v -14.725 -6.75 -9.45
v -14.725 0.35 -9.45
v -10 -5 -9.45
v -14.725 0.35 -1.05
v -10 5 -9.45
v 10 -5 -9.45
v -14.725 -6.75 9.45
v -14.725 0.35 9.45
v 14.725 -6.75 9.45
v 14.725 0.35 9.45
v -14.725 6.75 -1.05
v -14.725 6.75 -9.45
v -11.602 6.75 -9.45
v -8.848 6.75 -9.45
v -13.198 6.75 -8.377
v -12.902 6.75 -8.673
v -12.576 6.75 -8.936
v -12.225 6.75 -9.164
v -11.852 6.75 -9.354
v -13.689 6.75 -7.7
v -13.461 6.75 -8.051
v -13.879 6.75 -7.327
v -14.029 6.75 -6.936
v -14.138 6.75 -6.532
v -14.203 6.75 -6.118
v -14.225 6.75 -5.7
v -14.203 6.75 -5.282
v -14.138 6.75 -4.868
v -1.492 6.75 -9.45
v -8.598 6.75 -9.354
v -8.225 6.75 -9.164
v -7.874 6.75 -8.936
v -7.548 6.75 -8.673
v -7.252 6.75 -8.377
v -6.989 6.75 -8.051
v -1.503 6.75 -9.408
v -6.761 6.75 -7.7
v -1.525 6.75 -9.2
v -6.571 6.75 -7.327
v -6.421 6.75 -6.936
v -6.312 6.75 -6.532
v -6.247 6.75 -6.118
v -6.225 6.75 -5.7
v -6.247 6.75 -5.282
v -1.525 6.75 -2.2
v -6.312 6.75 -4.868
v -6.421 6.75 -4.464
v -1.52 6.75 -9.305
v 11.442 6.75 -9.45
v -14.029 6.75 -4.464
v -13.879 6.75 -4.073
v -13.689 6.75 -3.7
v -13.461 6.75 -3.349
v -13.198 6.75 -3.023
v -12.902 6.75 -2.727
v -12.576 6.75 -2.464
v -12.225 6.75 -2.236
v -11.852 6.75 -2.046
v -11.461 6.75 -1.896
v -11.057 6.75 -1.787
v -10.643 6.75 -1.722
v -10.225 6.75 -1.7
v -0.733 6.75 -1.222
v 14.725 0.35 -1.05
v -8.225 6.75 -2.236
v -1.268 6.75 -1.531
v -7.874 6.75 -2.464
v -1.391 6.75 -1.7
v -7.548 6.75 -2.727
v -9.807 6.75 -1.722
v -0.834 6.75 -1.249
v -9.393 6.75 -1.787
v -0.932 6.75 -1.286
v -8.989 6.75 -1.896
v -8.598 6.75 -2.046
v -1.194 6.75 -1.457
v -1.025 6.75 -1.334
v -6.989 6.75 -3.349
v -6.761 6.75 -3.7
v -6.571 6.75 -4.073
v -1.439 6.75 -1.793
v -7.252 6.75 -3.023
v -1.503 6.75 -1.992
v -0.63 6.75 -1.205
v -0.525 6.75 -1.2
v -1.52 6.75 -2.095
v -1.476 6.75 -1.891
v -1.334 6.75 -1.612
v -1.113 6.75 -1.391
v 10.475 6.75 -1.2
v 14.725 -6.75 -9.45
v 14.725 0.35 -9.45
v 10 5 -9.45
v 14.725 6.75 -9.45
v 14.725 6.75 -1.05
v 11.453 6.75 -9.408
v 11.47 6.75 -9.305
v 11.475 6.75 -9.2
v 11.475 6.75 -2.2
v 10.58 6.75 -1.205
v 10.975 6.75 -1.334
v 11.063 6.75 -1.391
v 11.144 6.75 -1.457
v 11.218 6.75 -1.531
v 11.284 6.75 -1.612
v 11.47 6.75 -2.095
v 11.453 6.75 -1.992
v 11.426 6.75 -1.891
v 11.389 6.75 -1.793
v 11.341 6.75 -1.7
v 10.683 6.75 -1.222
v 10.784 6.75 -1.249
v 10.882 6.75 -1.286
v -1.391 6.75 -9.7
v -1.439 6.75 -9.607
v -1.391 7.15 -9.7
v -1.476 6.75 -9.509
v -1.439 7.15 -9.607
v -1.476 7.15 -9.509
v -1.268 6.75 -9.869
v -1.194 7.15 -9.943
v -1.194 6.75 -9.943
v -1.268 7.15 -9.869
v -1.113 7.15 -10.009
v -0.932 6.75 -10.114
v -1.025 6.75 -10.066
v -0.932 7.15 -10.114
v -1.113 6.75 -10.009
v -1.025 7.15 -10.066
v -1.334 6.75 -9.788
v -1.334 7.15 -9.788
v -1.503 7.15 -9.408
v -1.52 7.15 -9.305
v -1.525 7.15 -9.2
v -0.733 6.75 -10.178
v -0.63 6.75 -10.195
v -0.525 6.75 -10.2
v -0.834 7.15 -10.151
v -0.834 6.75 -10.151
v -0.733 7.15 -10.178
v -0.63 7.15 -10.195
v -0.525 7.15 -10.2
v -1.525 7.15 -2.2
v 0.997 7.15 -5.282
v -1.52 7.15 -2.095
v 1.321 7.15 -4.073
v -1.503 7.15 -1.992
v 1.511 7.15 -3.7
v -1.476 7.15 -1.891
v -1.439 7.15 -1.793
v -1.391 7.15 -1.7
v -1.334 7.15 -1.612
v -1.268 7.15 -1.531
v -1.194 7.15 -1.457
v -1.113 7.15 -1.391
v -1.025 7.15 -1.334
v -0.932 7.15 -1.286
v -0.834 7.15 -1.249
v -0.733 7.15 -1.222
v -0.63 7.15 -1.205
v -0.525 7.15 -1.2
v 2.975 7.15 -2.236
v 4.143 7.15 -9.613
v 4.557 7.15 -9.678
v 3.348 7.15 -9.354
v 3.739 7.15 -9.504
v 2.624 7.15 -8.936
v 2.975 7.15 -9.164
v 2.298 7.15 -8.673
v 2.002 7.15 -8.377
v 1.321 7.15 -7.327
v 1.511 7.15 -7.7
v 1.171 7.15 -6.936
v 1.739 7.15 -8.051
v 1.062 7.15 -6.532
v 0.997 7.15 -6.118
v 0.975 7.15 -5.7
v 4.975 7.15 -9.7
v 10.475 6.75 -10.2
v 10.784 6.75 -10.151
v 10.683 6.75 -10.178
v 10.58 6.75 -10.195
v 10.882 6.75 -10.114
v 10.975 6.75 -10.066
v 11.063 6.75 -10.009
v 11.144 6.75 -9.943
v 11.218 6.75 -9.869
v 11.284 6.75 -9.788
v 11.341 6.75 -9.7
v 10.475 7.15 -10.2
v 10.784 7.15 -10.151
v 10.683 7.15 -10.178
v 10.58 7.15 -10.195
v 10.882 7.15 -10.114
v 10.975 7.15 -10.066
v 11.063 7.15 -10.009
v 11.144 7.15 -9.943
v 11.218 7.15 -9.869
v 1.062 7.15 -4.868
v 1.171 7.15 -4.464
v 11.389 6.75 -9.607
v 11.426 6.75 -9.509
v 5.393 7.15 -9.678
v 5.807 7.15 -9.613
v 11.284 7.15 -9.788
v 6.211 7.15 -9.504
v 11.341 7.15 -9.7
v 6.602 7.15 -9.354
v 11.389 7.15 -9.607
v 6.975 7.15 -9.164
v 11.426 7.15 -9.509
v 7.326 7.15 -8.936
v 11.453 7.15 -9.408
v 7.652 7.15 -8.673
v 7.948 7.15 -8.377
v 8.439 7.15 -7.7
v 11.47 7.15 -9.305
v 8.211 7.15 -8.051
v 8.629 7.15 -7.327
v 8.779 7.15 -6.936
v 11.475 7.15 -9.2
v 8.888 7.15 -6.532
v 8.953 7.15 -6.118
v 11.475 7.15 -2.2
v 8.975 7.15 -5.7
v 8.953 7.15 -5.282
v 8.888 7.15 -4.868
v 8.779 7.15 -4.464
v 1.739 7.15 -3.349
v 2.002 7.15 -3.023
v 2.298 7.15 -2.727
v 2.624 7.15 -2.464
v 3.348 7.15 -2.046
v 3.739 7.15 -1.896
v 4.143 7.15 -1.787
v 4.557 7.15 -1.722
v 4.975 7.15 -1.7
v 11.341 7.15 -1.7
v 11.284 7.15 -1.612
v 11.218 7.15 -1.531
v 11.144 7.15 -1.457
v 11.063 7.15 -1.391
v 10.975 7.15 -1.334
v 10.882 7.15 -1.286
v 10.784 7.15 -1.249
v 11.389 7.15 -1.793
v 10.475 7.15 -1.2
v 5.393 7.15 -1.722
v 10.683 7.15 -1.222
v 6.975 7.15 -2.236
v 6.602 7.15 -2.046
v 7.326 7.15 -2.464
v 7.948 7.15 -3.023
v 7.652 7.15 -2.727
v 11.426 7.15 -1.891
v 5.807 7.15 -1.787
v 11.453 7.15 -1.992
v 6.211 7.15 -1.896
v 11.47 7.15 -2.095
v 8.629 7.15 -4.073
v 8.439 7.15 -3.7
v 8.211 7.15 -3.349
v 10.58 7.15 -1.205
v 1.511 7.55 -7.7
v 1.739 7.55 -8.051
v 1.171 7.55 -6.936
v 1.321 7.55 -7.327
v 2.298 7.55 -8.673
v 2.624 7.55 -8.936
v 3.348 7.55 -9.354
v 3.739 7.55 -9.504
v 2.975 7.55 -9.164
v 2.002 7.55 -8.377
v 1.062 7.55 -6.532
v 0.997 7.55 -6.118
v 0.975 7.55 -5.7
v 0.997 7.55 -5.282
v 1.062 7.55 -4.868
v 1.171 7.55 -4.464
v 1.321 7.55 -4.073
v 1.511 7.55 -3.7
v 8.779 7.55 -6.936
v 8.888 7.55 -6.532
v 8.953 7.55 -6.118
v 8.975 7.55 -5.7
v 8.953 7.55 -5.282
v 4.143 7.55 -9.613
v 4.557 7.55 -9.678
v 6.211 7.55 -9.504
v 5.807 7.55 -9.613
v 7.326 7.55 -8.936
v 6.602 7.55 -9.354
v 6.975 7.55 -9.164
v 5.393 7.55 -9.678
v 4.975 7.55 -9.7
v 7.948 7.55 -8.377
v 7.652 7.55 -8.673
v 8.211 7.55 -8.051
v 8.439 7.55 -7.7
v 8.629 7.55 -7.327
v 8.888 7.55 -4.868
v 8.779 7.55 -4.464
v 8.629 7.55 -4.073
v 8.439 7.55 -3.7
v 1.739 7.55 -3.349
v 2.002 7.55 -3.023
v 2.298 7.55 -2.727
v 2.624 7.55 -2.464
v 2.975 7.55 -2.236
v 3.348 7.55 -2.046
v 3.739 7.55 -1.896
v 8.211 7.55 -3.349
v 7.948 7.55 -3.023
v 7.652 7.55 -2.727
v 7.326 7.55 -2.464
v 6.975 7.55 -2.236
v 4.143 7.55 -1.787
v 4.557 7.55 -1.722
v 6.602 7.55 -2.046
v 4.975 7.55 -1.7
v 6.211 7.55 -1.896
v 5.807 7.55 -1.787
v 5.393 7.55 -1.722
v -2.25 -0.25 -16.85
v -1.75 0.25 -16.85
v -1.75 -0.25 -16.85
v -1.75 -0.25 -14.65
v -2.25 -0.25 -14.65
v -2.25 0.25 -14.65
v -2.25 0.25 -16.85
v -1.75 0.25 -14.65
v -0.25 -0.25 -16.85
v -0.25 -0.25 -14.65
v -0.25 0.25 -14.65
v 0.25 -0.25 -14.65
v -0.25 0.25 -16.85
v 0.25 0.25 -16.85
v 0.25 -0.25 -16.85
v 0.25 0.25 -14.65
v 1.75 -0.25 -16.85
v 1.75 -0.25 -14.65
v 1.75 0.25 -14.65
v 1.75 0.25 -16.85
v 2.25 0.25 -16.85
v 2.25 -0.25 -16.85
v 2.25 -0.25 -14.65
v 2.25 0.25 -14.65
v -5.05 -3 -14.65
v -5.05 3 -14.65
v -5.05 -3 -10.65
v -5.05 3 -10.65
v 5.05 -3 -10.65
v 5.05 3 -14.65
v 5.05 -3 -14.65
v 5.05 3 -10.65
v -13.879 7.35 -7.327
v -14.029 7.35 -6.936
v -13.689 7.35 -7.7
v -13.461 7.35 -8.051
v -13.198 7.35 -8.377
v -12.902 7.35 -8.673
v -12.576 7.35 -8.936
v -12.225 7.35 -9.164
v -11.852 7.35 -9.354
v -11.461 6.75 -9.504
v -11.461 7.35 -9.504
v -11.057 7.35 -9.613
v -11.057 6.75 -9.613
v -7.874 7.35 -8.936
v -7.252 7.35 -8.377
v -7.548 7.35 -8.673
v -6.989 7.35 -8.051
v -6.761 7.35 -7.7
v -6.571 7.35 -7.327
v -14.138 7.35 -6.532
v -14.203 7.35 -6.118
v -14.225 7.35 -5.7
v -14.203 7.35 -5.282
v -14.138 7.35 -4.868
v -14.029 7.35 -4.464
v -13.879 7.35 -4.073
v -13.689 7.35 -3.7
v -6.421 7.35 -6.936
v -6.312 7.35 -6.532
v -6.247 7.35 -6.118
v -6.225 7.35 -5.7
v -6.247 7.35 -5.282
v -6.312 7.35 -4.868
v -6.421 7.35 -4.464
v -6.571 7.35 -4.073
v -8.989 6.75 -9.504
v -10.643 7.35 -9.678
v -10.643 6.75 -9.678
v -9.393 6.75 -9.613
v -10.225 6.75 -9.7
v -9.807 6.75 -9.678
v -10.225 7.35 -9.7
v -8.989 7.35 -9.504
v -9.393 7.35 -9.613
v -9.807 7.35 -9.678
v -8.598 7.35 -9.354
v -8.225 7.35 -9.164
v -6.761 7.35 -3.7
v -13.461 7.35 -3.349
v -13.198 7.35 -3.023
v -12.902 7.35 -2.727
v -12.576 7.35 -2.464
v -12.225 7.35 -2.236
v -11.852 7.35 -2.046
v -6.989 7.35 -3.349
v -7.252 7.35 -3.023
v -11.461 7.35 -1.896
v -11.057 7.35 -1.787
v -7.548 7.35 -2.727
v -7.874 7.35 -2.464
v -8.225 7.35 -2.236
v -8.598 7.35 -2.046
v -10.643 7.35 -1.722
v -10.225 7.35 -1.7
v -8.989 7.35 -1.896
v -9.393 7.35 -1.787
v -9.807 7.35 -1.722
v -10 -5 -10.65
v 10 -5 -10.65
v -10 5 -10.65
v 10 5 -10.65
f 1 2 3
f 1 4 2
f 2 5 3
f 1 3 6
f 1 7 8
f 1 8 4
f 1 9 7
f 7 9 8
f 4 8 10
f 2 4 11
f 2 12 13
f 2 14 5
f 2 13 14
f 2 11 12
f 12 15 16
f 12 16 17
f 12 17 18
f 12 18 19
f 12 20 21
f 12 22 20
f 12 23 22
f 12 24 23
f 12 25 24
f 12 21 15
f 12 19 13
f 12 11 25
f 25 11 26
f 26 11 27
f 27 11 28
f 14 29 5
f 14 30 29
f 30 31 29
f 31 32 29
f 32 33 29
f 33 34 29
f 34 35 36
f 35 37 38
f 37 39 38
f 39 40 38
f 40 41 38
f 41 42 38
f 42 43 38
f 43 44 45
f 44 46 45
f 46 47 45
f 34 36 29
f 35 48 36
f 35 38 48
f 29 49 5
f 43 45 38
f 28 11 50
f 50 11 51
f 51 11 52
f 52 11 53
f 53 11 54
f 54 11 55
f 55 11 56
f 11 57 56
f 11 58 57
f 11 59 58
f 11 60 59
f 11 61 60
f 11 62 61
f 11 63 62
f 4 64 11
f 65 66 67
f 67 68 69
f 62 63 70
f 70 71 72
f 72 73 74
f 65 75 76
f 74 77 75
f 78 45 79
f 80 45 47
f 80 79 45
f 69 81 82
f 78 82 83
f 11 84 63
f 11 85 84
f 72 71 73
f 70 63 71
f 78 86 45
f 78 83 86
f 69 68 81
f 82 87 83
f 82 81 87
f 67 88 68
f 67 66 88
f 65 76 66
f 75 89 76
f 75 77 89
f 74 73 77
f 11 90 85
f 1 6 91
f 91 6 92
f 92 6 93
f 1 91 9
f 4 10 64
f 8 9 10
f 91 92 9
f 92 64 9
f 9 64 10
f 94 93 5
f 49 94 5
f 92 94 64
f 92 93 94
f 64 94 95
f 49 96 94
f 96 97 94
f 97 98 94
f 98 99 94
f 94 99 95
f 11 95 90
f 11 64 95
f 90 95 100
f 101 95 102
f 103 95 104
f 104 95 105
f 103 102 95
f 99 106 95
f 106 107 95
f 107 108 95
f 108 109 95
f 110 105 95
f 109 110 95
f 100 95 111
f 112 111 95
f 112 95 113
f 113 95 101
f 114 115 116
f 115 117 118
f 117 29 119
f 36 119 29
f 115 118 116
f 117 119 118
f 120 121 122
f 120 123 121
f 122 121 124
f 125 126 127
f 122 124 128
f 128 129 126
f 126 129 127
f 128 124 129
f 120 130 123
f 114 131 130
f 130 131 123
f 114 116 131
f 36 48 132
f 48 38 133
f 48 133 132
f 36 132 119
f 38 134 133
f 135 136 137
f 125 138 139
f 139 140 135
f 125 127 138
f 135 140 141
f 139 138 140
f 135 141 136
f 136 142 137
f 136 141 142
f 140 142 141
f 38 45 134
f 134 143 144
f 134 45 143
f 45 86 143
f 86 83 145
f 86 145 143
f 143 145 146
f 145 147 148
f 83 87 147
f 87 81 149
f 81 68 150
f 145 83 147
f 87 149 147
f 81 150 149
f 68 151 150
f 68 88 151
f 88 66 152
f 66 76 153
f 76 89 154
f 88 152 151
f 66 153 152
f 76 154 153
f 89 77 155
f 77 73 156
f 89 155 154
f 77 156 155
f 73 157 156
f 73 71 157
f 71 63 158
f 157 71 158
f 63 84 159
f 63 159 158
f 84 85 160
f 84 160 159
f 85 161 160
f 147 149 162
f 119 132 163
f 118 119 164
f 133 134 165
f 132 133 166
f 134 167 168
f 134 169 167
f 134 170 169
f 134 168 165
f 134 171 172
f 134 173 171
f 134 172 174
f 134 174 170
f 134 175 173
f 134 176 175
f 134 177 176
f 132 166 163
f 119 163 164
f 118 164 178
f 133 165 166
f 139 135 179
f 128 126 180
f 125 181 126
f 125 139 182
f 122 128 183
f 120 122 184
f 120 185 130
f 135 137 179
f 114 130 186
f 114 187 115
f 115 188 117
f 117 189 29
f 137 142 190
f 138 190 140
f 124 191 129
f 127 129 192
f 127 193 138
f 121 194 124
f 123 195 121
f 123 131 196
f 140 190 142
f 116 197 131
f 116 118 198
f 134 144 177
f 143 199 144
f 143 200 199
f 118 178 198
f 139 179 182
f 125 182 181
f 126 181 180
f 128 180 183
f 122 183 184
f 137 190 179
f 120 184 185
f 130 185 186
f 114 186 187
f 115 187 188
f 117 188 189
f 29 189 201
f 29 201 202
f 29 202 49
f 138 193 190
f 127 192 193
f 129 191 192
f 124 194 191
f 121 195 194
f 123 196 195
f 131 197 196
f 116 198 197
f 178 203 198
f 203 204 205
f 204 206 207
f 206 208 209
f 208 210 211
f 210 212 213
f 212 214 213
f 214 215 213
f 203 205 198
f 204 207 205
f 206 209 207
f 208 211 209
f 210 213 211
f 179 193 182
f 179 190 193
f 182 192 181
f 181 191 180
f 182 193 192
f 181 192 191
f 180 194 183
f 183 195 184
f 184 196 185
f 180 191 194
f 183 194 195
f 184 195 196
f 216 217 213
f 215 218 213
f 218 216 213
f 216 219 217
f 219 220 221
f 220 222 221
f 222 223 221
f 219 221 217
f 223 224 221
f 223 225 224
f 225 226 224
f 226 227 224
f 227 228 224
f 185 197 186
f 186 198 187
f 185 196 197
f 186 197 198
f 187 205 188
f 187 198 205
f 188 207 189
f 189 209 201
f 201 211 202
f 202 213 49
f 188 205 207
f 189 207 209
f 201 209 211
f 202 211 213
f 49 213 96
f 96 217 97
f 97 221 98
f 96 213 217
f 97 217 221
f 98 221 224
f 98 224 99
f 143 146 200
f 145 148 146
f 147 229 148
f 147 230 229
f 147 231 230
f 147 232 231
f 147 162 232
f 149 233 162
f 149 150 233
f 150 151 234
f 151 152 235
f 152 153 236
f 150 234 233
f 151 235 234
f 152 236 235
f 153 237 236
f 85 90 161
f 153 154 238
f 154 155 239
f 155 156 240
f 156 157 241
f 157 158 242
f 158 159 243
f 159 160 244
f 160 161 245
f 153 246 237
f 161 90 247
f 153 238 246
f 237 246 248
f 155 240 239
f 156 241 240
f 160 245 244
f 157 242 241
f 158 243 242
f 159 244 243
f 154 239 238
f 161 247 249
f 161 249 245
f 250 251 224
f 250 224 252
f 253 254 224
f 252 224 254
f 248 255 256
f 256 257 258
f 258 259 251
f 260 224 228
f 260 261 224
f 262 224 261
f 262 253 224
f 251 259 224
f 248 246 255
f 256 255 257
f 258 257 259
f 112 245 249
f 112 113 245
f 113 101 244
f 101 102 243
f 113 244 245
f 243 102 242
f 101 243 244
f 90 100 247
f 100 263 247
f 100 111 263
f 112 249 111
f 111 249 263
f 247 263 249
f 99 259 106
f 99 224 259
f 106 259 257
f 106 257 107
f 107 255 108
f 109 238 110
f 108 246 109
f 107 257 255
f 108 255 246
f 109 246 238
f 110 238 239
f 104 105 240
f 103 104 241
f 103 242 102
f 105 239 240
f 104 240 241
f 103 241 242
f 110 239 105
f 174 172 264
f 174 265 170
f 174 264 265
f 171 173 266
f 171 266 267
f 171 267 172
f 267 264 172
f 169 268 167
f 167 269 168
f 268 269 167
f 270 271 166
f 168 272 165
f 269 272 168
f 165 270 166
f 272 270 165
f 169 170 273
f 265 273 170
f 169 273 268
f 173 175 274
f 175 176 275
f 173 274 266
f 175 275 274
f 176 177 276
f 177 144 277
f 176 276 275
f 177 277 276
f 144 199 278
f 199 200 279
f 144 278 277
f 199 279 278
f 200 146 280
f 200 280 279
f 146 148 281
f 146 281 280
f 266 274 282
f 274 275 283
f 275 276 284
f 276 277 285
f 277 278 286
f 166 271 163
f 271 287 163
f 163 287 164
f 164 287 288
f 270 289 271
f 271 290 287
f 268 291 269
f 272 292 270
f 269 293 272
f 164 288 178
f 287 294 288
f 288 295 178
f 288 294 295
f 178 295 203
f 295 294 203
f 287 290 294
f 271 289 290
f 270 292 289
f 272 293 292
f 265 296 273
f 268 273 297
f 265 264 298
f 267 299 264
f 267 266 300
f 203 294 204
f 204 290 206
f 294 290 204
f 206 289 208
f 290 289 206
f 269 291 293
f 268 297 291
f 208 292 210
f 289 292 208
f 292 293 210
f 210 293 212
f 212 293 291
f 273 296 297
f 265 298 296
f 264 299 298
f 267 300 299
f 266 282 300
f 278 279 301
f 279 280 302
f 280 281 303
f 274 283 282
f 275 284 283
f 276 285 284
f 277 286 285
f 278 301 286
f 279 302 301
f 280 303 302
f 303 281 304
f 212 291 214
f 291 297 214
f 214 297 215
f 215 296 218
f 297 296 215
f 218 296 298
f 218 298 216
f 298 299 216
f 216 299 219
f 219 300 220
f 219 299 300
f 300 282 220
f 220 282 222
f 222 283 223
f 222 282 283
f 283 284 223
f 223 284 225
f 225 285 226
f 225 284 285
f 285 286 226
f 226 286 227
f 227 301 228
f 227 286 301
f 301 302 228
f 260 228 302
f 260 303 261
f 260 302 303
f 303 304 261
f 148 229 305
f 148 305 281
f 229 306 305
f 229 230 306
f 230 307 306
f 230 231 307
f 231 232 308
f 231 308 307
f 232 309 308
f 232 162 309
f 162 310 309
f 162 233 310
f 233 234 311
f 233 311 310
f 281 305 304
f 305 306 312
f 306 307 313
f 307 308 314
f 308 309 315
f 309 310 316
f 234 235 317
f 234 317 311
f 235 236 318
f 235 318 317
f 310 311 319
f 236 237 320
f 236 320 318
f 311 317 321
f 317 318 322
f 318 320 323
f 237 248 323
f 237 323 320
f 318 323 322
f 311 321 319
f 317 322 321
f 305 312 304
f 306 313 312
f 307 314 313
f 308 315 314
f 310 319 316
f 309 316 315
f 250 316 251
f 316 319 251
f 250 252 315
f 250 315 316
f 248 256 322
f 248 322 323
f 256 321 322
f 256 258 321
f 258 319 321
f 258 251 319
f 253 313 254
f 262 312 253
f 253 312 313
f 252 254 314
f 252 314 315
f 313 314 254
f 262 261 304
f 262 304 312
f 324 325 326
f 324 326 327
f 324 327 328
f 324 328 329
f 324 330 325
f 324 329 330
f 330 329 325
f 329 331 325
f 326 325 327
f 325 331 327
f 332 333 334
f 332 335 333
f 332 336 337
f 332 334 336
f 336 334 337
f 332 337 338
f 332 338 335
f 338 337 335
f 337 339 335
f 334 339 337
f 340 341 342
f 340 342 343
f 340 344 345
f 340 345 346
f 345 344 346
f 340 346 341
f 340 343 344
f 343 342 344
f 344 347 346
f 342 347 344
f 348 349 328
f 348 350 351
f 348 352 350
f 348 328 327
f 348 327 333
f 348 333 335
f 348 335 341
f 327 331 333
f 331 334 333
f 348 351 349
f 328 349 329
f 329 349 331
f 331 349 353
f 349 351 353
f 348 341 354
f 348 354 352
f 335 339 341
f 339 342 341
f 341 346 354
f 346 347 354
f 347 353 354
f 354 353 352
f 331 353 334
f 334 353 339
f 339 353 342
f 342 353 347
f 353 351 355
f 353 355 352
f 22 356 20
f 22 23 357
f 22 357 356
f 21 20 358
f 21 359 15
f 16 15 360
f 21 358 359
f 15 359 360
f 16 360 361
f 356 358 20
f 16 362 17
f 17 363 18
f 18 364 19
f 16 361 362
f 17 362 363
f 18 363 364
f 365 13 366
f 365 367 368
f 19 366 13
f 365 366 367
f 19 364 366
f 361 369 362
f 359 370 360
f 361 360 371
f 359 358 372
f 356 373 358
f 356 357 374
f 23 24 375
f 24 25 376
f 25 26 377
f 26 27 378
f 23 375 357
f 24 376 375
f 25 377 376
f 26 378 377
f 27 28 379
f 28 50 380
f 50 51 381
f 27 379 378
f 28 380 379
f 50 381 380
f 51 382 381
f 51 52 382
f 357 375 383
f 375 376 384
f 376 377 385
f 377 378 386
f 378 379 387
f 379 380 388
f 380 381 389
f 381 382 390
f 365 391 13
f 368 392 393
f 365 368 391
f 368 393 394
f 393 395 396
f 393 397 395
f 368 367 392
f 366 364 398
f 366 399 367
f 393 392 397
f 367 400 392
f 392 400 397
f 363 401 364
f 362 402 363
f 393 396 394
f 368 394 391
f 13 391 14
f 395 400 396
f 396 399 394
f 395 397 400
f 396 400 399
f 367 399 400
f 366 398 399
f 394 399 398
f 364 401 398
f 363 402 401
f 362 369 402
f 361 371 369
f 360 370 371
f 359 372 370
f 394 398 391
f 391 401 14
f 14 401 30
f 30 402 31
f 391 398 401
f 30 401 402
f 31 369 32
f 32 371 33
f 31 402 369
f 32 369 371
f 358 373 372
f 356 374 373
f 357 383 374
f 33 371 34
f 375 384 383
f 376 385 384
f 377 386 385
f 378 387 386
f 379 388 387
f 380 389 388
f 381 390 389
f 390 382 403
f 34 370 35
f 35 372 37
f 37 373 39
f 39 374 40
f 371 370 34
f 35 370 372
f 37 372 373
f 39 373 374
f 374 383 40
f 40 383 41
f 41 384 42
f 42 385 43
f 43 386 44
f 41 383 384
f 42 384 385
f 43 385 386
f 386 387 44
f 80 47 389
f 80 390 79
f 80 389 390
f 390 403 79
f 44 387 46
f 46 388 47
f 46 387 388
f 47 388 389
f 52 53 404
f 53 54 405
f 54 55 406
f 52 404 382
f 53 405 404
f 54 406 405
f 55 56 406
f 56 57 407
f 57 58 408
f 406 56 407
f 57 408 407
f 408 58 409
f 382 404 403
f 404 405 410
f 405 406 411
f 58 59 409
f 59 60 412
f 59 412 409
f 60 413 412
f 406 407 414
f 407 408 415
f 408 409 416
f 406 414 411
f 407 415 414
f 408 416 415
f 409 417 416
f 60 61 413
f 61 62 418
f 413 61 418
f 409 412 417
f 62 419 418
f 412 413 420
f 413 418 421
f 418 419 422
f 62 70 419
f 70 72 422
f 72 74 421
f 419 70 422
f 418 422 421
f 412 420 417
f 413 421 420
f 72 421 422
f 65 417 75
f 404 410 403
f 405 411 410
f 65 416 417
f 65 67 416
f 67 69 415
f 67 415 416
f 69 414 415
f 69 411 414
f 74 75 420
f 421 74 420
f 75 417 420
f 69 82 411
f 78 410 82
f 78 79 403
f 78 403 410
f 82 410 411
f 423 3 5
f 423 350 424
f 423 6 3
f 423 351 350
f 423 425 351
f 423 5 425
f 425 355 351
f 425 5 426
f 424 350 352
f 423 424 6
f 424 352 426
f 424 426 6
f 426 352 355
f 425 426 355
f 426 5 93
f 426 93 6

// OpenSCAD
// =====================================================================
// Sharp GP2Y0D413K0F  距離センサ 簡易モデル
// 単位: mm
// 座標系:
//   原点   : 本体(ケース)バウンディングボックスの中心
//   +X     : センサ幅方向 (受発光素子の並び方向)
//   +Y     : センシング面(レンズ面)を向く方向
//   -Z     : 取付面 (PWB / コネクタ側)
// =====================================================================

$fn = 60;

// ------------------------------------------------------------------
// 主要寸法 (データシート値。造形上必要な一部は近似)
// ------------------------------------------------------------------
body_width       = 29.45;   // 全幅 (X)
body_depth       = 13.5;    // 全奥行き (Y)
lens_case_depth  = 7.1;     // レンズケース部の奥行き(背面側、段差の高い部分)
front_depth      = body_depth - lens_case_depth; // 前面(受発光窓)部の奥行き

main_height      = 18.9;    // レンズケース部を含む最大高さ(Z)
front_height     = 8.4;     // 受発光窓側(前面)の低い部分の高さ

emitter_offset_x   = 4.5;   // 左端から発光レンズ中心までの距離
detector_offset_x   = 19.7; // 左端から受光レンズ中心までの距離
lens_center_z_off   = 3.75; // 前面部下端からレンズ中心までの高さ

emitter_dia    = 8.0;
detector_dia   = 8.0;
detector_win_w = 13.0;
detector_win_h = 9.0;

pwb_width     = 20;
pwb_depth     = 10;
pwb_thickness = 1.2;

conn_width  = 10.1;
conn_depth  = 6;
conn_height = 4;

pin_pitch  = 2.0;   // 3P コネクタ ピッチ
pin_size   = 0.5;
pin_length = 2.2;

// ------------------------------------------------------------------
// 派生座標
// ------------------------------------------------------------------
z_bottom = -main_height/2;          // 本体底面(取付面側)
z_top    =  main_height/2;          // レンズケース上面

y_front_face      =  body_depth/2;                  // 受発光面(外側)
y_back            = -body_depth/2;                  // レンズケース背面
y_lens_case_front = y_back + lens_case_depth;       // レンズケースと前面部の境界

x_left = -body_width/2;

emitter_x  = x_left + emitter_offset_x;
detector_x = x_left + detector_offset_x;
lens_z     = z_bottom + lens_center_z_off;

// ------------------------------------------------------------------
// モジュール定義
// ------------------------------------------------------------------

// 本体ケース(段付き形状: 背面のレンズケース部が高く、前面の受発光窓部が低い)
module main_case() {
    color("DimGray") {
        // 背面: レンズケース部(高さ最大 main_height)
        translate([x_left, y_back, z_bottom])
            cube([body_width, lens_case_depth, main_height]);

        // 前面: 受発光窓を持つ低い部分
        translate([x_left, y_lens_case_front, z_bottom])
            cube([body_width, front_depth, front_height]);
    }
}

// 発光素子レンズ (円形)
module emitter_lens() {
    color("LightSteelBlue")
    translate([emitter_x, y_front_face, lens_z])
        rotate([-90, 0, 0])
            cylinder(d = emitter_dia, h = 0.6);
}

// 受光素子レンズ (角枠 + 円形レンズ)
module detector_lens() {
    // 外側の窓枠(角丸長方形)
    color("Gray")
    translate([detector_x, y_front_face, lens_z])
        rotate([-90, 0, 0])
            linear_extrude(height = 0.4)
                offset(r = 1)
                    square([detector_win_w - 2, detector_win_h - 2], center = true);

    // 内側の円形レンズ
    color("LightSteelBlue")
    translate([detector_x, y_front_face + 0.3, lens_z])
        rotate([-90, 0, 0])
            cylinder(d = detector_dia, h = 0.5);
}

// PWB (紙フェノール基板)
module pwb() {
    color("SaddleBrown")
    translate([-pwb_width/2, -pwb_depth/2, z_bottom - pwb_thickness])
        cube([pwb_width, pwb_depth, pwb_thickness]);
}

// コネクタ本体 + 3ピン (①Vo ②GND ③Vcc)
module connector() {
    color("Black")
    translate([-conn_width/2, -conn_depth/2, z_bottom - pwb_thickness - conn_height])
        cube([conn_width, conn_depth, conn_height]);

    for (i = [-1, 0, 1]) {
        translate([i*pin_pitch - pin_size/2, -pin_size/2,
                    z_bottom - pwb_thickness - conn_height - pin_length])
            cube([pin_size, pin_size, pin_length]);
    }
}

// ------------------------------------------------------------------
// 組み立て
// ------------------------------------------------------------------
module GP2Y0D413K0F() {
    main_case();
    emitter_lens();
    detector_lens();
    pwb();
    connector();
}

GP2Y0D413K0F();
